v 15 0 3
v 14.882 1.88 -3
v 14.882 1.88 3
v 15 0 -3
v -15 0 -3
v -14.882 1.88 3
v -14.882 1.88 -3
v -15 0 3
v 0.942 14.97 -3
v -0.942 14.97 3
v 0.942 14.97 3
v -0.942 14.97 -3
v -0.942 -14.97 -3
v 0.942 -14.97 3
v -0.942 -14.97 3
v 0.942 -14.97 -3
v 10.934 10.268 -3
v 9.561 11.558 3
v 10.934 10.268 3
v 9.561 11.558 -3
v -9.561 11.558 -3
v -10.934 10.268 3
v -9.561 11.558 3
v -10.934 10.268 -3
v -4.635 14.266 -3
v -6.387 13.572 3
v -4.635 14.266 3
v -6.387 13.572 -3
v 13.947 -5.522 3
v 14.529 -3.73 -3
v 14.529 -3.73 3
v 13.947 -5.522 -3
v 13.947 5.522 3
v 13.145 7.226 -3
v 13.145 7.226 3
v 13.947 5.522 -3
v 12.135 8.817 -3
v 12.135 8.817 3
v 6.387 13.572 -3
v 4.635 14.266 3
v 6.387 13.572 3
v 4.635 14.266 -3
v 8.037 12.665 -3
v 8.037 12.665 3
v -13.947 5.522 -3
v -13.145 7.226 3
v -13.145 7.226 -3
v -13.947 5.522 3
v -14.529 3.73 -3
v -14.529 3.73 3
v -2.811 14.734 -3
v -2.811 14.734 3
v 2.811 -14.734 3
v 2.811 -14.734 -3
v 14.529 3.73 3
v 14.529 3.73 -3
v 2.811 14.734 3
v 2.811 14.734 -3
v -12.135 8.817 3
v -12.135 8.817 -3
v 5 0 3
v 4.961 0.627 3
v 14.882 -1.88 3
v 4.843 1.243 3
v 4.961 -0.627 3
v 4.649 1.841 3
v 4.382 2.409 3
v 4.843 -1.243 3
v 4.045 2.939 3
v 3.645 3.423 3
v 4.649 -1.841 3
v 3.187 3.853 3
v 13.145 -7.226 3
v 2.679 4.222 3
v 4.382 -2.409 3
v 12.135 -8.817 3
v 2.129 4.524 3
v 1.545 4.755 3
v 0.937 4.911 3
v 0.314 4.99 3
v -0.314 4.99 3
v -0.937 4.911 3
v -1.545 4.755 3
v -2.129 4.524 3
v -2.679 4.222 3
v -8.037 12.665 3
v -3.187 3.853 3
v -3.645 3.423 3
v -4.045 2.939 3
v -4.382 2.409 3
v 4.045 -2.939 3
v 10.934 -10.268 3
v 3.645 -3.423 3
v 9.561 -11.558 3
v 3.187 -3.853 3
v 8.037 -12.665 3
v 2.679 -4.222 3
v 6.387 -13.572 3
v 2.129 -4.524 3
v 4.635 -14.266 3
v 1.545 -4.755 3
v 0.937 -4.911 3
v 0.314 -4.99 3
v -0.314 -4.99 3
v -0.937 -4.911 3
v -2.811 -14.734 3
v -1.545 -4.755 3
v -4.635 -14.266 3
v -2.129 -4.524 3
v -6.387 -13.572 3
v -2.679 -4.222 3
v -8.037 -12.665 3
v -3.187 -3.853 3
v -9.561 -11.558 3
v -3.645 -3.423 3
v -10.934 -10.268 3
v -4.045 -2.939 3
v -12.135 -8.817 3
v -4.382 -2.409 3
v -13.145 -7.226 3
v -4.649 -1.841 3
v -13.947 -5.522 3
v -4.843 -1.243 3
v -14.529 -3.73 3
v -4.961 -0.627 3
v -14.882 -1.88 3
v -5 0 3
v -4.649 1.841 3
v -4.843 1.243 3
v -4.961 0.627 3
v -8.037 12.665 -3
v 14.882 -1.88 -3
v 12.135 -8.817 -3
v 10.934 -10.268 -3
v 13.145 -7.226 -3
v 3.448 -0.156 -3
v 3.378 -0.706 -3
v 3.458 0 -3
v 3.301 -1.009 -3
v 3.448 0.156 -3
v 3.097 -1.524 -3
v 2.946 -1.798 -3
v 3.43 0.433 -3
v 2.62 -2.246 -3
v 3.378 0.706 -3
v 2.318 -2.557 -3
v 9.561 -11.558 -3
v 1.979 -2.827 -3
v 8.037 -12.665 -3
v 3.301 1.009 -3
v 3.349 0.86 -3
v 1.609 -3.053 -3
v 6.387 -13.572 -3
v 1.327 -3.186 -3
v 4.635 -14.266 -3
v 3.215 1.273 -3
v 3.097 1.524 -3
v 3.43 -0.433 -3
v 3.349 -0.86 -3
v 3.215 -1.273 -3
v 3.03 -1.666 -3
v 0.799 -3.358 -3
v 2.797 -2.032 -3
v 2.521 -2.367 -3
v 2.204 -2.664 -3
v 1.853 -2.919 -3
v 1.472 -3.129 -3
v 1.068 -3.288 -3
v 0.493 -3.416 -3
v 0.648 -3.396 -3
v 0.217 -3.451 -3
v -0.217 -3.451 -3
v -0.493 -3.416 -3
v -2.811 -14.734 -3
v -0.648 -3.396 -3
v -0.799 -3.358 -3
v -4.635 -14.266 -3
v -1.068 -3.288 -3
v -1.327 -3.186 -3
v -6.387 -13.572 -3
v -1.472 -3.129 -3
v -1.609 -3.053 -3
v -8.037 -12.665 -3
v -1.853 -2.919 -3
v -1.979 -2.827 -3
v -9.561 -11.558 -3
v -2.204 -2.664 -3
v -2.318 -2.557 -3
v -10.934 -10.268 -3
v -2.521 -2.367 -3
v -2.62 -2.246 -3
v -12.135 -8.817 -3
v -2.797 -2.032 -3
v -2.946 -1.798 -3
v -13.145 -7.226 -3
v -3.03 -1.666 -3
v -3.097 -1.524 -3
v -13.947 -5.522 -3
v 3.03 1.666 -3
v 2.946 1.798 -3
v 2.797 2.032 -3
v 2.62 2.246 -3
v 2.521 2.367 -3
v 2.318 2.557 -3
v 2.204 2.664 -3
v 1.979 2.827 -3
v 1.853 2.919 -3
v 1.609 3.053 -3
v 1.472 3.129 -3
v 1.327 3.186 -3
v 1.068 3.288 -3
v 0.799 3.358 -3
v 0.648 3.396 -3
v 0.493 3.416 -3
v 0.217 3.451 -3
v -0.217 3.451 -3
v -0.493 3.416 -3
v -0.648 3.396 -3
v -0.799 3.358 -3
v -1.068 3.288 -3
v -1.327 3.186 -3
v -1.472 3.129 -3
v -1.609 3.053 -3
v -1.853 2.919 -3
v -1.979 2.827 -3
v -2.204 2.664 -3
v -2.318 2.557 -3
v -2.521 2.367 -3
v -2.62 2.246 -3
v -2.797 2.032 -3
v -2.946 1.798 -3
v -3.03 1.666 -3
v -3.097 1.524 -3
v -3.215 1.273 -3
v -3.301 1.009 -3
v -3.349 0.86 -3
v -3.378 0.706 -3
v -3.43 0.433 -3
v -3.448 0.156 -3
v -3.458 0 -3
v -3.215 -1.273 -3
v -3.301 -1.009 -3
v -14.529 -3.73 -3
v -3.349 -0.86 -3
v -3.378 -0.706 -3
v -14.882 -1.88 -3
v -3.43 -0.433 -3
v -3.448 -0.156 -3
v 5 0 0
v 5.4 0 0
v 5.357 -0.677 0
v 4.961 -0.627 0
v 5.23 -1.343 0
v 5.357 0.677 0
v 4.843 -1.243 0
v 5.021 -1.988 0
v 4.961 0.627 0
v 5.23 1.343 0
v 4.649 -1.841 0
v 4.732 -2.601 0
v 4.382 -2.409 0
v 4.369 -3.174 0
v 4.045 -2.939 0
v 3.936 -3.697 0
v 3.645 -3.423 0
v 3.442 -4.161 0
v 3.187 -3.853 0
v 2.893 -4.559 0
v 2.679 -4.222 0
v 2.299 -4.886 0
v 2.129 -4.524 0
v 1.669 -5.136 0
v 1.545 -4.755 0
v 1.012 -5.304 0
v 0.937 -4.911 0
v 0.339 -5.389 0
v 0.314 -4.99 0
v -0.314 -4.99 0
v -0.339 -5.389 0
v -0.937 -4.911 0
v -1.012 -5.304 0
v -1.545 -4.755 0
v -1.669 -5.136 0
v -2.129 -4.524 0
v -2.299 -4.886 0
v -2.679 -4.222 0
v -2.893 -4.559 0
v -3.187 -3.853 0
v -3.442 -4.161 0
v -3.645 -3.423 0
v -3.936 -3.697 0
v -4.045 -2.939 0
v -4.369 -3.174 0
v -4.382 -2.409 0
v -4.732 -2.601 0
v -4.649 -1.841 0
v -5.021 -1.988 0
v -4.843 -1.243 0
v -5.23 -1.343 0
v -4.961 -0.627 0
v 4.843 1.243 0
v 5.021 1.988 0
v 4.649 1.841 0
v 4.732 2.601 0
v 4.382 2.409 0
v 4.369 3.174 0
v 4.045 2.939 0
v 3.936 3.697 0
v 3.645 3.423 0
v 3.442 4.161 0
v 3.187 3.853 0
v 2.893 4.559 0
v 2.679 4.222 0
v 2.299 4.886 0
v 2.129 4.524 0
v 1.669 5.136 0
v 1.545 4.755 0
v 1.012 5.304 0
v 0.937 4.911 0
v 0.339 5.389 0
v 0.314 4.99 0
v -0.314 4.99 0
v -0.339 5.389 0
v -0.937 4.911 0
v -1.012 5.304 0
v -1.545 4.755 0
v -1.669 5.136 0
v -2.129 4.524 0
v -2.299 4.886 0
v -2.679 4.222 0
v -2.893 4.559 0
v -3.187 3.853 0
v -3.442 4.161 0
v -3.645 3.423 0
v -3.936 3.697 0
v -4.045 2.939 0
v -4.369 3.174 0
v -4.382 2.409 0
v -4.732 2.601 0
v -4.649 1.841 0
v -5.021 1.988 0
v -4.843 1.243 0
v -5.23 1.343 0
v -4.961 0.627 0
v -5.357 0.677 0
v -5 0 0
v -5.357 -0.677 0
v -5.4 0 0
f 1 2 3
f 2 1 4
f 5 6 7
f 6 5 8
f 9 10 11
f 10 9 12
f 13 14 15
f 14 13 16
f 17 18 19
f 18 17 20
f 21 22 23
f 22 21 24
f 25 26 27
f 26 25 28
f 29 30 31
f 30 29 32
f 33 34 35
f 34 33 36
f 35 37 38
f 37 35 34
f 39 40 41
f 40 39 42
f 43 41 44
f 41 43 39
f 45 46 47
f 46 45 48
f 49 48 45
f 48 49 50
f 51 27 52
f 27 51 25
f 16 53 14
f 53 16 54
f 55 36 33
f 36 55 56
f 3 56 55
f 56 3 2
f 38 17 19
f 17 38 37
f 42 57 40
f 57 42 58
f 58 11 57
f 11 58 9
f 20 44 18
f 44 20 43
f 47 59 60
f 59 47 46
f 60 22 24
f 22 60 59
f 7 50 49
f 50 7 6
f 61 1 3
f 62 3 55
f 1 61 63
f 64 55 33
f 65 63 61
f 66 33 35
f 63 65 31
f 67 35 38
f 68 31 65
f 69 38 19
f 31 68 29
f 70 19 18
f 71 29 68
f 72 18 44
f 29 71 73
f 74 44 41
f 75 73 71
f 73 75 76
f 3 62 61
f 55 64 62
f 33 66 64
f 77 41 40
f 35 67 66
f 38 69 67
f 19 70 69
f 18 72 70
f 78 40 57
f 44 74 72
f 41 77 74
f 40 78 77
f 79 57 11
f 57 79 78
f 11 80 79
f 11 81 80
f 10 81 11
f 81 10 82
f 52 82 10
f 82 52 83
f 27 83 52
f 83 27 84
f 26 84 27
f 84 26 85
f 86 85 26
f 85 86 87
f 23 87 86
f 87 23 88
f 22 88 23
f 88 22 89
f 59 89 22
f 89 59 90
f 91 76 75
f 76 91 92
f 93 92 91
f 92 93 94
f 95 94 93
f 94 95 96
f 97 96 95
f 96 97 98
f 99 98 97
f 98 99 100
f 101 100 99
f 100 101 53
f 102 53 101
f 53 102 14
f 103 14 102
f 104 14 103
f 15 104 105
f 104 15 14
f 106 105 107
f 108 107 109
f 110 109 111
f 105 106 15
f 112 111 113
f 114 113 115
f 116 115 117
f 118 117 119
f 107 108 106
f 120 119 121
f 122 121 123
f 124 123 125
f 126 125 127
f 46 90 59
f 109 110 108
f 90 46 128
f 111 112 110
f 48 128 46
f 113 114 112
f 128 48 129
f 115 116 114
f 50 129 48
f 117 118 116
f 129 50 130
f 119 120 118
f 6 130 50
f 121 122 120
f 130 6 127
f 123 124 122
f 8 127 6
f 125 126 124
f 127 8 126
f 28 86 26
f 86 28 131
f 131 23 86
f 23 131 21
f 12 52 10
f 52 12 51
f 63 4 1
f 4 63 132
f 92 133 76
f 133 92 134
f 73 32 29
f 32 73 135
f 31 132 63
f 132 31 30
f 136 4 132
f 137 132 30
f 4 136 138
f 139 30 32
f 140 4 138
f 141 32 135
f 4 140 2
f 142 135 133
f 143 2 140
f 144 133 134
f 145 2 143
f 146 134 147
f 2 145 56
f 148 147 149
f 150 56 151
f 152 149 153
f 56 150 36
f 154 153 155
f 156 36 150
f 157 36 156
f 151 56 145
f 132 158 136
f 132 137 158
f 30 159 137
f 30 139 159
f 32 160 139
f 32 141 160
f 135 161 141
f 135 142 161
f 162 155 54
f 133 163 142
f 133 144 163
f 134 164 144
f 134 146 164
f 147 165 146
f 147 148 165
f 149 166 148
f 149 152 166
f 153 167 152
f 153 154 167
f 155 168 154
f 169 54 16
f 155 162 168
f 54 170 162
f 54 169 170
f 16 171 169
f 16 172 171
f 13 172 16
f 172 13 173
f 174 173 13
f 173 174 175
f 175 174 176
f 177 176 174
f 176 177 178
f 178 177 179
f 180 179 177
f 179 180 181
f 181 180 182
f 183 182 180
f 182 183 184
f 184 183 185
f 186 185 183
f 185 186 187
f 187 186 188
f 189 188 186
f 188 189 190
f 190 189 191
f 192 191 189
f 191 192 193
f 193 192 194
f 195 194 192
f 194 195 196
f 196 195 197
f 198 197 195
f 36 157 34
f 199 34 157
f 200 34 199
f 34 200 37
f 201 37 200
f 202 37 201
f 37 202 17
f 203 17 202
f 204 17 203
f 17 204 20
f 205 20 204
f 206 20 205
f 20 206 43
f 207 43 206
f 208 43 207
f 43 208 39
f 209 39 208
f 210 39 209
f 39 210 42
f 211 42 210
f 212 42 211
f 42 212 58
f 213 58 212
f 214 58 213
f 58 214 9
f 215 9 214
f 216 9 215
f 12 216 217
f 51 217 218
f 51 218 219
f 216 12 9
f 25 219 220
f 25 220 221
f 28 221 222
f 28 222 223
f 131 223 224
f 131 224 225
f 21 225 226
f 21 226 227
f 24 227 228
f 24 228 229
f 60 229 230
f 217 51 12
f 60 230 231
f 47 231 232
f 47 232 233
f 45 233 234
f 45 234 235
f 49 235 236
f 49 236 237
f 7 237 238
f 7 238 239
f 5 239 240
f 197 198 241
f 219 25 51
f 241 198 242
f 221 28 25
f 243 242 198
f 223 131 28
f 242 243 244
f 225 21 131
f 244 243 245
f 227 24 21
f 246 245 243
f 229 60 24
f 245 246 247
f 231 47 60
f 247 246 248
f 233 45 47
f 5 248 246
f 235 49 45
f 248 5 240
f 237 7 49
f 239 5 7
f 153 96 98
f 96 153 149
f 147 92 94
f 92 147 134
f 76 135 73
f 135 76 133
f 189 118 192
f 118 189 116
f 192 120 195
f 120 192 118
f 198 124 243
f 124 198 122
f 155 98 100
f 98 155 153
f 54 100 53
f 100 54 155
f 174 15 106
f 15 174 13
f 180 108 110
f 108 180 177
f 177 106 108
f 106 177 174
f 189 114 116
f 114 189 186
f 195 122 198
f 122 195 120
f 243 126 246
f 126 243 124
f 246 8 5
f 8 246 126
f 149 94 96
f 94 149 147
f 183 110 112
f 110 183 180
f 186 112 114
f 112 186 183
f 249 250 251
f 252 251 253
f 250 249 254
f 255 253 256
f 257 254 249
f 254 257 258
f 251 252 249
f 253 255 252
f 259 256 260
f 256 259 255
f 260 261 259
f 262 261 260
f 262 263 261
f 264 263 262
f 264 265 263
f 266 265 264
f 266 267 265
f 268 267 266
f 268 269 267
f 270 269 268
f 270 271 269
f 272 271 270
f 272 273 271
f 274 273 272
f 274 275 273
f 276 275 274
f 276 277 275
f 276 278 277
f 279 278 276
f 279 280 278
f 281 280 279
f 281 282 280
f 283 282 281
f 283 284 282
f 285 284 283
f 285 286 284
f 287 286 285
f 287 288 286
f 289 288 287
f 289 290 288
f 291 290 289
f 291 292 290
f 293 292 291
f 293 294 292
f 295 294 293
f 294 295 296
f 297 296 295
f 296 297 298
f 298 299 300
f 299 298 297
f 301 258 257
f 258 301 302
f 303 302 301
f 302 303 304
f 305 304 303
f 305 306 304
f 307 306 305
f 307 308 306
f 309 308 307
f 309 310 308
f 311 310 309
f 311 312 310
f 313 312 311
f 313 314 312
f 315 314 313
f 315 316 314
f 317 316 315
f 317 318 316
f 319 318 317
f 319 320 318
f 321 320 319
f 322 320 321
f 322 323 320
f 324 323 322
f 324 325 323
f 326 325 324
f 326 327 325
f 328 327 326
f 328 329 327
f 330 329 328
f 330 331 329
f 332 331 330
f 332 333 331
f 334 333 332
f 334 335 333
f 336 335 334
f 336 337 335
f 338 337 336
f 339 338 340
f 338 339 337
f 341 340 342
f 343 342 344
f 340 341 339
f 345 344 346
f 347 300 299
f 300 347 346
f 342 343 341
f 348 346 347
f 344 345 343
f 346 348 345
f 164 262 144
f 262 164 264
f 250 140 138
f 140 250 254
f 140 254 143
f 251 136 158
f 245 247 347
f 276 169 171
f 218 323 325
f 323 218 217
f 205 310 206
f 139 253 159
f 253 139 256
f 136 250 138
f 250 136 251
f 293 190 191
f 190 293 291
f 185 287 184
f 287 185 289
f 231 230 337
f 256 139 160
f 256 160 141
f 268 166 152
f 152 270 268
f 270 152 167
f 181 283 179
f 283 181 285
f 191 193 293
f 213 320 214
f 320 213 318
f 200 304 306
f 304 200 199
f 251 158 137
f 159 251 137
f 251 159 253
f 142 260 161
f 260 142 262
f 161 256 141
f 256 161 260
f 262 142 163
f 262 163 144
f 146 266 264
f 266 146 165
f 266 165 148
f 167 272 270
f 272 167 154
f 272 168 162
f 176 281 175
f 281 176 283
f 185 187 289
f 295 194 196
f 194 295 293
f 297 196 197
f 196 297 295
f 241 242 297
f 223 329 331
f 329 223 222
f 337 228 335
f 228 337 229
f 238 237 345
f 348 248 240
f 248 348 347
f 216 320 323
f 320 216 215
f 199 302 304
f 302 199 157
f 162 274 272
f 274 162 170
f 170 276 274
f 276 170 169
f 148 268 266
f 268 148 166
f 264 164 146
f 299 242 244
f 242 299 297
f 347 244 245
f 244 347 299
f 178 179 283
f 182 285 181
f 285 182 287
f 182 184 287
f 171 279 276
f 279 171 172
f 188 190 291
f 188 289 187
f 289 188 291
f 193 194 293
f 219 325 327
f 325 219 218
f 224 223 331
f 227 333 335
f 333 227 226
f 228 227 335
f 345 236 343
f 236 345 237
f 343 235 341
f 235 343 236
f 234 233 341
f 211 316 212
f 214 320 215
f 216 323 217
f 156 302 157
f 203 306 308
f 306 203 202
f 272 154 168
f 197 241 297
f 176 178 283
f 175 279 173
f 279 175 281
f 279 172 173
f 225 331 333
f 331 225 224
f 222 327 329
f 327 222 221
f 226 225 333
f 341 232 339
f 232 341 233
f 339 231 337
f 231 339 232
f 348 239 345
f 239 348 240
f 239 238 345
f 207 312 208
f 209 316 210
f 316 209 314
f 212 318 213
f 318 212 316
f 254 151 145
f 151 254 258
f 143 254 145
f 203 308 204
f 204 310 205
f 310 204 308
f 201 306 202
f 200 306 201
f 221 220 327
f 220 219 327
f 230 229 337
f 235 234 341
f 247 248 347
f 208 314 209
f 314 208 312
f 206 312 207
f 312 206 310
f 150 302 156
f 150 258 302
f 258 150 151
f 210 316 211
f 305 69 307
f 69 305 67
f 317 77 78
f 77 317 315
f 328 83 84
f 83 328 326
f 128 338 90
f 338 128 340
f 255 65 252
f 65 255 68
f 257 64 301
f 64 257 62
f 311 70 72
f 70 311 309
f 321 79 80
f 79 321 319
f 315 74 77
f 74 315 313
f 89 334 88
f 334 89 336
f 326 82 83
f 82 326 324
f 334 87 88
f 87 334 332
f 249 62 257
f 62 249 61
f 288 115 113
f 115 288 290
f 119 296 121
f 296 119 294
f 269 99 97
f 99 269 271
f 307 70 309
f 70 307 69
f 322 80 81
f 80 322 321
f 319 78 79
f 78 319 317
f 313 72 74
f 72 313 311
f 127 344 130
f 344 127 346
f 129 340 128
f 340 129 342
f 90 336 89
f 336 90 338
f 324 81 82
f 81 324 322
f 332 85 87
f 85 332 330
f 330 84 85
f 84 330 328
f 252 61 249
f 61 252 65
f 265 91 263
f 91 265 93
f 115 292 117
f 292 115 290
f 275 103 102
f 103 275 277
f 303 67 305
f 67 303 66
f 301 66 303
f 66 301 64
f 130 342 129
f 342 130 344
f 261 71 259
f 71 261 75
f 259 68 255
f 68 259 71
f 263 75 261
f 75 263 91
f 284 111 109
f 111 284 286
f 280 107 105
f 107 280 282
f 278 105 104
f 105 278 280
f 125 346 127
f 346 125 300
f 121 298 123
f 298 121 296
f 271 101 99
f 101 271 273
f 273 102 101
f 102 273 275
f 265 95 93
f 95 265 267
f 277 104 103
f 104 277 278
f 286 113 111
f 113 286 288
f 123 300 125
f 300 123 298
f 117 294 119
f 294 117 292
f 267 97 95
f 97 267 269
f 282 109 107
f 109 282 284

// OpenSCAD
$fn = 50;

difference() {
	union() {
		translate(v = [0, 0, -3.0]) {
			cylinder(h = 6, r = 15.0);
		}
		#translate(v = [0, 0, -6.0]) {
			cylinder(h = 6, r = 2.875);
		}
	}
	union() {
		translate(v = [0, 0, 0]) {
			rotate(a = [0, 0, 0]) {
				difference() {
					union() {
						translate(v = [0, 0, -6.0]) {
							cylinder(h = 6, r = 2.6);
						}
						translate(v = [0, 0, -3.9]) {
							cylinder(h = 3.9, r1 = 2.875, r2 = 5.4);
						}
						translate(v = [0, 0, -6.0]) {
							cylinder(h = 6, r = 2.875);
						}
						translate(v = [0, 0, -6.0]) {
							cylinder(h = 6, r = 2.6);
						}
					}
					union();
				}
			}
		}
		#cylinder(h = 3, r = 5.0);
	}
}
